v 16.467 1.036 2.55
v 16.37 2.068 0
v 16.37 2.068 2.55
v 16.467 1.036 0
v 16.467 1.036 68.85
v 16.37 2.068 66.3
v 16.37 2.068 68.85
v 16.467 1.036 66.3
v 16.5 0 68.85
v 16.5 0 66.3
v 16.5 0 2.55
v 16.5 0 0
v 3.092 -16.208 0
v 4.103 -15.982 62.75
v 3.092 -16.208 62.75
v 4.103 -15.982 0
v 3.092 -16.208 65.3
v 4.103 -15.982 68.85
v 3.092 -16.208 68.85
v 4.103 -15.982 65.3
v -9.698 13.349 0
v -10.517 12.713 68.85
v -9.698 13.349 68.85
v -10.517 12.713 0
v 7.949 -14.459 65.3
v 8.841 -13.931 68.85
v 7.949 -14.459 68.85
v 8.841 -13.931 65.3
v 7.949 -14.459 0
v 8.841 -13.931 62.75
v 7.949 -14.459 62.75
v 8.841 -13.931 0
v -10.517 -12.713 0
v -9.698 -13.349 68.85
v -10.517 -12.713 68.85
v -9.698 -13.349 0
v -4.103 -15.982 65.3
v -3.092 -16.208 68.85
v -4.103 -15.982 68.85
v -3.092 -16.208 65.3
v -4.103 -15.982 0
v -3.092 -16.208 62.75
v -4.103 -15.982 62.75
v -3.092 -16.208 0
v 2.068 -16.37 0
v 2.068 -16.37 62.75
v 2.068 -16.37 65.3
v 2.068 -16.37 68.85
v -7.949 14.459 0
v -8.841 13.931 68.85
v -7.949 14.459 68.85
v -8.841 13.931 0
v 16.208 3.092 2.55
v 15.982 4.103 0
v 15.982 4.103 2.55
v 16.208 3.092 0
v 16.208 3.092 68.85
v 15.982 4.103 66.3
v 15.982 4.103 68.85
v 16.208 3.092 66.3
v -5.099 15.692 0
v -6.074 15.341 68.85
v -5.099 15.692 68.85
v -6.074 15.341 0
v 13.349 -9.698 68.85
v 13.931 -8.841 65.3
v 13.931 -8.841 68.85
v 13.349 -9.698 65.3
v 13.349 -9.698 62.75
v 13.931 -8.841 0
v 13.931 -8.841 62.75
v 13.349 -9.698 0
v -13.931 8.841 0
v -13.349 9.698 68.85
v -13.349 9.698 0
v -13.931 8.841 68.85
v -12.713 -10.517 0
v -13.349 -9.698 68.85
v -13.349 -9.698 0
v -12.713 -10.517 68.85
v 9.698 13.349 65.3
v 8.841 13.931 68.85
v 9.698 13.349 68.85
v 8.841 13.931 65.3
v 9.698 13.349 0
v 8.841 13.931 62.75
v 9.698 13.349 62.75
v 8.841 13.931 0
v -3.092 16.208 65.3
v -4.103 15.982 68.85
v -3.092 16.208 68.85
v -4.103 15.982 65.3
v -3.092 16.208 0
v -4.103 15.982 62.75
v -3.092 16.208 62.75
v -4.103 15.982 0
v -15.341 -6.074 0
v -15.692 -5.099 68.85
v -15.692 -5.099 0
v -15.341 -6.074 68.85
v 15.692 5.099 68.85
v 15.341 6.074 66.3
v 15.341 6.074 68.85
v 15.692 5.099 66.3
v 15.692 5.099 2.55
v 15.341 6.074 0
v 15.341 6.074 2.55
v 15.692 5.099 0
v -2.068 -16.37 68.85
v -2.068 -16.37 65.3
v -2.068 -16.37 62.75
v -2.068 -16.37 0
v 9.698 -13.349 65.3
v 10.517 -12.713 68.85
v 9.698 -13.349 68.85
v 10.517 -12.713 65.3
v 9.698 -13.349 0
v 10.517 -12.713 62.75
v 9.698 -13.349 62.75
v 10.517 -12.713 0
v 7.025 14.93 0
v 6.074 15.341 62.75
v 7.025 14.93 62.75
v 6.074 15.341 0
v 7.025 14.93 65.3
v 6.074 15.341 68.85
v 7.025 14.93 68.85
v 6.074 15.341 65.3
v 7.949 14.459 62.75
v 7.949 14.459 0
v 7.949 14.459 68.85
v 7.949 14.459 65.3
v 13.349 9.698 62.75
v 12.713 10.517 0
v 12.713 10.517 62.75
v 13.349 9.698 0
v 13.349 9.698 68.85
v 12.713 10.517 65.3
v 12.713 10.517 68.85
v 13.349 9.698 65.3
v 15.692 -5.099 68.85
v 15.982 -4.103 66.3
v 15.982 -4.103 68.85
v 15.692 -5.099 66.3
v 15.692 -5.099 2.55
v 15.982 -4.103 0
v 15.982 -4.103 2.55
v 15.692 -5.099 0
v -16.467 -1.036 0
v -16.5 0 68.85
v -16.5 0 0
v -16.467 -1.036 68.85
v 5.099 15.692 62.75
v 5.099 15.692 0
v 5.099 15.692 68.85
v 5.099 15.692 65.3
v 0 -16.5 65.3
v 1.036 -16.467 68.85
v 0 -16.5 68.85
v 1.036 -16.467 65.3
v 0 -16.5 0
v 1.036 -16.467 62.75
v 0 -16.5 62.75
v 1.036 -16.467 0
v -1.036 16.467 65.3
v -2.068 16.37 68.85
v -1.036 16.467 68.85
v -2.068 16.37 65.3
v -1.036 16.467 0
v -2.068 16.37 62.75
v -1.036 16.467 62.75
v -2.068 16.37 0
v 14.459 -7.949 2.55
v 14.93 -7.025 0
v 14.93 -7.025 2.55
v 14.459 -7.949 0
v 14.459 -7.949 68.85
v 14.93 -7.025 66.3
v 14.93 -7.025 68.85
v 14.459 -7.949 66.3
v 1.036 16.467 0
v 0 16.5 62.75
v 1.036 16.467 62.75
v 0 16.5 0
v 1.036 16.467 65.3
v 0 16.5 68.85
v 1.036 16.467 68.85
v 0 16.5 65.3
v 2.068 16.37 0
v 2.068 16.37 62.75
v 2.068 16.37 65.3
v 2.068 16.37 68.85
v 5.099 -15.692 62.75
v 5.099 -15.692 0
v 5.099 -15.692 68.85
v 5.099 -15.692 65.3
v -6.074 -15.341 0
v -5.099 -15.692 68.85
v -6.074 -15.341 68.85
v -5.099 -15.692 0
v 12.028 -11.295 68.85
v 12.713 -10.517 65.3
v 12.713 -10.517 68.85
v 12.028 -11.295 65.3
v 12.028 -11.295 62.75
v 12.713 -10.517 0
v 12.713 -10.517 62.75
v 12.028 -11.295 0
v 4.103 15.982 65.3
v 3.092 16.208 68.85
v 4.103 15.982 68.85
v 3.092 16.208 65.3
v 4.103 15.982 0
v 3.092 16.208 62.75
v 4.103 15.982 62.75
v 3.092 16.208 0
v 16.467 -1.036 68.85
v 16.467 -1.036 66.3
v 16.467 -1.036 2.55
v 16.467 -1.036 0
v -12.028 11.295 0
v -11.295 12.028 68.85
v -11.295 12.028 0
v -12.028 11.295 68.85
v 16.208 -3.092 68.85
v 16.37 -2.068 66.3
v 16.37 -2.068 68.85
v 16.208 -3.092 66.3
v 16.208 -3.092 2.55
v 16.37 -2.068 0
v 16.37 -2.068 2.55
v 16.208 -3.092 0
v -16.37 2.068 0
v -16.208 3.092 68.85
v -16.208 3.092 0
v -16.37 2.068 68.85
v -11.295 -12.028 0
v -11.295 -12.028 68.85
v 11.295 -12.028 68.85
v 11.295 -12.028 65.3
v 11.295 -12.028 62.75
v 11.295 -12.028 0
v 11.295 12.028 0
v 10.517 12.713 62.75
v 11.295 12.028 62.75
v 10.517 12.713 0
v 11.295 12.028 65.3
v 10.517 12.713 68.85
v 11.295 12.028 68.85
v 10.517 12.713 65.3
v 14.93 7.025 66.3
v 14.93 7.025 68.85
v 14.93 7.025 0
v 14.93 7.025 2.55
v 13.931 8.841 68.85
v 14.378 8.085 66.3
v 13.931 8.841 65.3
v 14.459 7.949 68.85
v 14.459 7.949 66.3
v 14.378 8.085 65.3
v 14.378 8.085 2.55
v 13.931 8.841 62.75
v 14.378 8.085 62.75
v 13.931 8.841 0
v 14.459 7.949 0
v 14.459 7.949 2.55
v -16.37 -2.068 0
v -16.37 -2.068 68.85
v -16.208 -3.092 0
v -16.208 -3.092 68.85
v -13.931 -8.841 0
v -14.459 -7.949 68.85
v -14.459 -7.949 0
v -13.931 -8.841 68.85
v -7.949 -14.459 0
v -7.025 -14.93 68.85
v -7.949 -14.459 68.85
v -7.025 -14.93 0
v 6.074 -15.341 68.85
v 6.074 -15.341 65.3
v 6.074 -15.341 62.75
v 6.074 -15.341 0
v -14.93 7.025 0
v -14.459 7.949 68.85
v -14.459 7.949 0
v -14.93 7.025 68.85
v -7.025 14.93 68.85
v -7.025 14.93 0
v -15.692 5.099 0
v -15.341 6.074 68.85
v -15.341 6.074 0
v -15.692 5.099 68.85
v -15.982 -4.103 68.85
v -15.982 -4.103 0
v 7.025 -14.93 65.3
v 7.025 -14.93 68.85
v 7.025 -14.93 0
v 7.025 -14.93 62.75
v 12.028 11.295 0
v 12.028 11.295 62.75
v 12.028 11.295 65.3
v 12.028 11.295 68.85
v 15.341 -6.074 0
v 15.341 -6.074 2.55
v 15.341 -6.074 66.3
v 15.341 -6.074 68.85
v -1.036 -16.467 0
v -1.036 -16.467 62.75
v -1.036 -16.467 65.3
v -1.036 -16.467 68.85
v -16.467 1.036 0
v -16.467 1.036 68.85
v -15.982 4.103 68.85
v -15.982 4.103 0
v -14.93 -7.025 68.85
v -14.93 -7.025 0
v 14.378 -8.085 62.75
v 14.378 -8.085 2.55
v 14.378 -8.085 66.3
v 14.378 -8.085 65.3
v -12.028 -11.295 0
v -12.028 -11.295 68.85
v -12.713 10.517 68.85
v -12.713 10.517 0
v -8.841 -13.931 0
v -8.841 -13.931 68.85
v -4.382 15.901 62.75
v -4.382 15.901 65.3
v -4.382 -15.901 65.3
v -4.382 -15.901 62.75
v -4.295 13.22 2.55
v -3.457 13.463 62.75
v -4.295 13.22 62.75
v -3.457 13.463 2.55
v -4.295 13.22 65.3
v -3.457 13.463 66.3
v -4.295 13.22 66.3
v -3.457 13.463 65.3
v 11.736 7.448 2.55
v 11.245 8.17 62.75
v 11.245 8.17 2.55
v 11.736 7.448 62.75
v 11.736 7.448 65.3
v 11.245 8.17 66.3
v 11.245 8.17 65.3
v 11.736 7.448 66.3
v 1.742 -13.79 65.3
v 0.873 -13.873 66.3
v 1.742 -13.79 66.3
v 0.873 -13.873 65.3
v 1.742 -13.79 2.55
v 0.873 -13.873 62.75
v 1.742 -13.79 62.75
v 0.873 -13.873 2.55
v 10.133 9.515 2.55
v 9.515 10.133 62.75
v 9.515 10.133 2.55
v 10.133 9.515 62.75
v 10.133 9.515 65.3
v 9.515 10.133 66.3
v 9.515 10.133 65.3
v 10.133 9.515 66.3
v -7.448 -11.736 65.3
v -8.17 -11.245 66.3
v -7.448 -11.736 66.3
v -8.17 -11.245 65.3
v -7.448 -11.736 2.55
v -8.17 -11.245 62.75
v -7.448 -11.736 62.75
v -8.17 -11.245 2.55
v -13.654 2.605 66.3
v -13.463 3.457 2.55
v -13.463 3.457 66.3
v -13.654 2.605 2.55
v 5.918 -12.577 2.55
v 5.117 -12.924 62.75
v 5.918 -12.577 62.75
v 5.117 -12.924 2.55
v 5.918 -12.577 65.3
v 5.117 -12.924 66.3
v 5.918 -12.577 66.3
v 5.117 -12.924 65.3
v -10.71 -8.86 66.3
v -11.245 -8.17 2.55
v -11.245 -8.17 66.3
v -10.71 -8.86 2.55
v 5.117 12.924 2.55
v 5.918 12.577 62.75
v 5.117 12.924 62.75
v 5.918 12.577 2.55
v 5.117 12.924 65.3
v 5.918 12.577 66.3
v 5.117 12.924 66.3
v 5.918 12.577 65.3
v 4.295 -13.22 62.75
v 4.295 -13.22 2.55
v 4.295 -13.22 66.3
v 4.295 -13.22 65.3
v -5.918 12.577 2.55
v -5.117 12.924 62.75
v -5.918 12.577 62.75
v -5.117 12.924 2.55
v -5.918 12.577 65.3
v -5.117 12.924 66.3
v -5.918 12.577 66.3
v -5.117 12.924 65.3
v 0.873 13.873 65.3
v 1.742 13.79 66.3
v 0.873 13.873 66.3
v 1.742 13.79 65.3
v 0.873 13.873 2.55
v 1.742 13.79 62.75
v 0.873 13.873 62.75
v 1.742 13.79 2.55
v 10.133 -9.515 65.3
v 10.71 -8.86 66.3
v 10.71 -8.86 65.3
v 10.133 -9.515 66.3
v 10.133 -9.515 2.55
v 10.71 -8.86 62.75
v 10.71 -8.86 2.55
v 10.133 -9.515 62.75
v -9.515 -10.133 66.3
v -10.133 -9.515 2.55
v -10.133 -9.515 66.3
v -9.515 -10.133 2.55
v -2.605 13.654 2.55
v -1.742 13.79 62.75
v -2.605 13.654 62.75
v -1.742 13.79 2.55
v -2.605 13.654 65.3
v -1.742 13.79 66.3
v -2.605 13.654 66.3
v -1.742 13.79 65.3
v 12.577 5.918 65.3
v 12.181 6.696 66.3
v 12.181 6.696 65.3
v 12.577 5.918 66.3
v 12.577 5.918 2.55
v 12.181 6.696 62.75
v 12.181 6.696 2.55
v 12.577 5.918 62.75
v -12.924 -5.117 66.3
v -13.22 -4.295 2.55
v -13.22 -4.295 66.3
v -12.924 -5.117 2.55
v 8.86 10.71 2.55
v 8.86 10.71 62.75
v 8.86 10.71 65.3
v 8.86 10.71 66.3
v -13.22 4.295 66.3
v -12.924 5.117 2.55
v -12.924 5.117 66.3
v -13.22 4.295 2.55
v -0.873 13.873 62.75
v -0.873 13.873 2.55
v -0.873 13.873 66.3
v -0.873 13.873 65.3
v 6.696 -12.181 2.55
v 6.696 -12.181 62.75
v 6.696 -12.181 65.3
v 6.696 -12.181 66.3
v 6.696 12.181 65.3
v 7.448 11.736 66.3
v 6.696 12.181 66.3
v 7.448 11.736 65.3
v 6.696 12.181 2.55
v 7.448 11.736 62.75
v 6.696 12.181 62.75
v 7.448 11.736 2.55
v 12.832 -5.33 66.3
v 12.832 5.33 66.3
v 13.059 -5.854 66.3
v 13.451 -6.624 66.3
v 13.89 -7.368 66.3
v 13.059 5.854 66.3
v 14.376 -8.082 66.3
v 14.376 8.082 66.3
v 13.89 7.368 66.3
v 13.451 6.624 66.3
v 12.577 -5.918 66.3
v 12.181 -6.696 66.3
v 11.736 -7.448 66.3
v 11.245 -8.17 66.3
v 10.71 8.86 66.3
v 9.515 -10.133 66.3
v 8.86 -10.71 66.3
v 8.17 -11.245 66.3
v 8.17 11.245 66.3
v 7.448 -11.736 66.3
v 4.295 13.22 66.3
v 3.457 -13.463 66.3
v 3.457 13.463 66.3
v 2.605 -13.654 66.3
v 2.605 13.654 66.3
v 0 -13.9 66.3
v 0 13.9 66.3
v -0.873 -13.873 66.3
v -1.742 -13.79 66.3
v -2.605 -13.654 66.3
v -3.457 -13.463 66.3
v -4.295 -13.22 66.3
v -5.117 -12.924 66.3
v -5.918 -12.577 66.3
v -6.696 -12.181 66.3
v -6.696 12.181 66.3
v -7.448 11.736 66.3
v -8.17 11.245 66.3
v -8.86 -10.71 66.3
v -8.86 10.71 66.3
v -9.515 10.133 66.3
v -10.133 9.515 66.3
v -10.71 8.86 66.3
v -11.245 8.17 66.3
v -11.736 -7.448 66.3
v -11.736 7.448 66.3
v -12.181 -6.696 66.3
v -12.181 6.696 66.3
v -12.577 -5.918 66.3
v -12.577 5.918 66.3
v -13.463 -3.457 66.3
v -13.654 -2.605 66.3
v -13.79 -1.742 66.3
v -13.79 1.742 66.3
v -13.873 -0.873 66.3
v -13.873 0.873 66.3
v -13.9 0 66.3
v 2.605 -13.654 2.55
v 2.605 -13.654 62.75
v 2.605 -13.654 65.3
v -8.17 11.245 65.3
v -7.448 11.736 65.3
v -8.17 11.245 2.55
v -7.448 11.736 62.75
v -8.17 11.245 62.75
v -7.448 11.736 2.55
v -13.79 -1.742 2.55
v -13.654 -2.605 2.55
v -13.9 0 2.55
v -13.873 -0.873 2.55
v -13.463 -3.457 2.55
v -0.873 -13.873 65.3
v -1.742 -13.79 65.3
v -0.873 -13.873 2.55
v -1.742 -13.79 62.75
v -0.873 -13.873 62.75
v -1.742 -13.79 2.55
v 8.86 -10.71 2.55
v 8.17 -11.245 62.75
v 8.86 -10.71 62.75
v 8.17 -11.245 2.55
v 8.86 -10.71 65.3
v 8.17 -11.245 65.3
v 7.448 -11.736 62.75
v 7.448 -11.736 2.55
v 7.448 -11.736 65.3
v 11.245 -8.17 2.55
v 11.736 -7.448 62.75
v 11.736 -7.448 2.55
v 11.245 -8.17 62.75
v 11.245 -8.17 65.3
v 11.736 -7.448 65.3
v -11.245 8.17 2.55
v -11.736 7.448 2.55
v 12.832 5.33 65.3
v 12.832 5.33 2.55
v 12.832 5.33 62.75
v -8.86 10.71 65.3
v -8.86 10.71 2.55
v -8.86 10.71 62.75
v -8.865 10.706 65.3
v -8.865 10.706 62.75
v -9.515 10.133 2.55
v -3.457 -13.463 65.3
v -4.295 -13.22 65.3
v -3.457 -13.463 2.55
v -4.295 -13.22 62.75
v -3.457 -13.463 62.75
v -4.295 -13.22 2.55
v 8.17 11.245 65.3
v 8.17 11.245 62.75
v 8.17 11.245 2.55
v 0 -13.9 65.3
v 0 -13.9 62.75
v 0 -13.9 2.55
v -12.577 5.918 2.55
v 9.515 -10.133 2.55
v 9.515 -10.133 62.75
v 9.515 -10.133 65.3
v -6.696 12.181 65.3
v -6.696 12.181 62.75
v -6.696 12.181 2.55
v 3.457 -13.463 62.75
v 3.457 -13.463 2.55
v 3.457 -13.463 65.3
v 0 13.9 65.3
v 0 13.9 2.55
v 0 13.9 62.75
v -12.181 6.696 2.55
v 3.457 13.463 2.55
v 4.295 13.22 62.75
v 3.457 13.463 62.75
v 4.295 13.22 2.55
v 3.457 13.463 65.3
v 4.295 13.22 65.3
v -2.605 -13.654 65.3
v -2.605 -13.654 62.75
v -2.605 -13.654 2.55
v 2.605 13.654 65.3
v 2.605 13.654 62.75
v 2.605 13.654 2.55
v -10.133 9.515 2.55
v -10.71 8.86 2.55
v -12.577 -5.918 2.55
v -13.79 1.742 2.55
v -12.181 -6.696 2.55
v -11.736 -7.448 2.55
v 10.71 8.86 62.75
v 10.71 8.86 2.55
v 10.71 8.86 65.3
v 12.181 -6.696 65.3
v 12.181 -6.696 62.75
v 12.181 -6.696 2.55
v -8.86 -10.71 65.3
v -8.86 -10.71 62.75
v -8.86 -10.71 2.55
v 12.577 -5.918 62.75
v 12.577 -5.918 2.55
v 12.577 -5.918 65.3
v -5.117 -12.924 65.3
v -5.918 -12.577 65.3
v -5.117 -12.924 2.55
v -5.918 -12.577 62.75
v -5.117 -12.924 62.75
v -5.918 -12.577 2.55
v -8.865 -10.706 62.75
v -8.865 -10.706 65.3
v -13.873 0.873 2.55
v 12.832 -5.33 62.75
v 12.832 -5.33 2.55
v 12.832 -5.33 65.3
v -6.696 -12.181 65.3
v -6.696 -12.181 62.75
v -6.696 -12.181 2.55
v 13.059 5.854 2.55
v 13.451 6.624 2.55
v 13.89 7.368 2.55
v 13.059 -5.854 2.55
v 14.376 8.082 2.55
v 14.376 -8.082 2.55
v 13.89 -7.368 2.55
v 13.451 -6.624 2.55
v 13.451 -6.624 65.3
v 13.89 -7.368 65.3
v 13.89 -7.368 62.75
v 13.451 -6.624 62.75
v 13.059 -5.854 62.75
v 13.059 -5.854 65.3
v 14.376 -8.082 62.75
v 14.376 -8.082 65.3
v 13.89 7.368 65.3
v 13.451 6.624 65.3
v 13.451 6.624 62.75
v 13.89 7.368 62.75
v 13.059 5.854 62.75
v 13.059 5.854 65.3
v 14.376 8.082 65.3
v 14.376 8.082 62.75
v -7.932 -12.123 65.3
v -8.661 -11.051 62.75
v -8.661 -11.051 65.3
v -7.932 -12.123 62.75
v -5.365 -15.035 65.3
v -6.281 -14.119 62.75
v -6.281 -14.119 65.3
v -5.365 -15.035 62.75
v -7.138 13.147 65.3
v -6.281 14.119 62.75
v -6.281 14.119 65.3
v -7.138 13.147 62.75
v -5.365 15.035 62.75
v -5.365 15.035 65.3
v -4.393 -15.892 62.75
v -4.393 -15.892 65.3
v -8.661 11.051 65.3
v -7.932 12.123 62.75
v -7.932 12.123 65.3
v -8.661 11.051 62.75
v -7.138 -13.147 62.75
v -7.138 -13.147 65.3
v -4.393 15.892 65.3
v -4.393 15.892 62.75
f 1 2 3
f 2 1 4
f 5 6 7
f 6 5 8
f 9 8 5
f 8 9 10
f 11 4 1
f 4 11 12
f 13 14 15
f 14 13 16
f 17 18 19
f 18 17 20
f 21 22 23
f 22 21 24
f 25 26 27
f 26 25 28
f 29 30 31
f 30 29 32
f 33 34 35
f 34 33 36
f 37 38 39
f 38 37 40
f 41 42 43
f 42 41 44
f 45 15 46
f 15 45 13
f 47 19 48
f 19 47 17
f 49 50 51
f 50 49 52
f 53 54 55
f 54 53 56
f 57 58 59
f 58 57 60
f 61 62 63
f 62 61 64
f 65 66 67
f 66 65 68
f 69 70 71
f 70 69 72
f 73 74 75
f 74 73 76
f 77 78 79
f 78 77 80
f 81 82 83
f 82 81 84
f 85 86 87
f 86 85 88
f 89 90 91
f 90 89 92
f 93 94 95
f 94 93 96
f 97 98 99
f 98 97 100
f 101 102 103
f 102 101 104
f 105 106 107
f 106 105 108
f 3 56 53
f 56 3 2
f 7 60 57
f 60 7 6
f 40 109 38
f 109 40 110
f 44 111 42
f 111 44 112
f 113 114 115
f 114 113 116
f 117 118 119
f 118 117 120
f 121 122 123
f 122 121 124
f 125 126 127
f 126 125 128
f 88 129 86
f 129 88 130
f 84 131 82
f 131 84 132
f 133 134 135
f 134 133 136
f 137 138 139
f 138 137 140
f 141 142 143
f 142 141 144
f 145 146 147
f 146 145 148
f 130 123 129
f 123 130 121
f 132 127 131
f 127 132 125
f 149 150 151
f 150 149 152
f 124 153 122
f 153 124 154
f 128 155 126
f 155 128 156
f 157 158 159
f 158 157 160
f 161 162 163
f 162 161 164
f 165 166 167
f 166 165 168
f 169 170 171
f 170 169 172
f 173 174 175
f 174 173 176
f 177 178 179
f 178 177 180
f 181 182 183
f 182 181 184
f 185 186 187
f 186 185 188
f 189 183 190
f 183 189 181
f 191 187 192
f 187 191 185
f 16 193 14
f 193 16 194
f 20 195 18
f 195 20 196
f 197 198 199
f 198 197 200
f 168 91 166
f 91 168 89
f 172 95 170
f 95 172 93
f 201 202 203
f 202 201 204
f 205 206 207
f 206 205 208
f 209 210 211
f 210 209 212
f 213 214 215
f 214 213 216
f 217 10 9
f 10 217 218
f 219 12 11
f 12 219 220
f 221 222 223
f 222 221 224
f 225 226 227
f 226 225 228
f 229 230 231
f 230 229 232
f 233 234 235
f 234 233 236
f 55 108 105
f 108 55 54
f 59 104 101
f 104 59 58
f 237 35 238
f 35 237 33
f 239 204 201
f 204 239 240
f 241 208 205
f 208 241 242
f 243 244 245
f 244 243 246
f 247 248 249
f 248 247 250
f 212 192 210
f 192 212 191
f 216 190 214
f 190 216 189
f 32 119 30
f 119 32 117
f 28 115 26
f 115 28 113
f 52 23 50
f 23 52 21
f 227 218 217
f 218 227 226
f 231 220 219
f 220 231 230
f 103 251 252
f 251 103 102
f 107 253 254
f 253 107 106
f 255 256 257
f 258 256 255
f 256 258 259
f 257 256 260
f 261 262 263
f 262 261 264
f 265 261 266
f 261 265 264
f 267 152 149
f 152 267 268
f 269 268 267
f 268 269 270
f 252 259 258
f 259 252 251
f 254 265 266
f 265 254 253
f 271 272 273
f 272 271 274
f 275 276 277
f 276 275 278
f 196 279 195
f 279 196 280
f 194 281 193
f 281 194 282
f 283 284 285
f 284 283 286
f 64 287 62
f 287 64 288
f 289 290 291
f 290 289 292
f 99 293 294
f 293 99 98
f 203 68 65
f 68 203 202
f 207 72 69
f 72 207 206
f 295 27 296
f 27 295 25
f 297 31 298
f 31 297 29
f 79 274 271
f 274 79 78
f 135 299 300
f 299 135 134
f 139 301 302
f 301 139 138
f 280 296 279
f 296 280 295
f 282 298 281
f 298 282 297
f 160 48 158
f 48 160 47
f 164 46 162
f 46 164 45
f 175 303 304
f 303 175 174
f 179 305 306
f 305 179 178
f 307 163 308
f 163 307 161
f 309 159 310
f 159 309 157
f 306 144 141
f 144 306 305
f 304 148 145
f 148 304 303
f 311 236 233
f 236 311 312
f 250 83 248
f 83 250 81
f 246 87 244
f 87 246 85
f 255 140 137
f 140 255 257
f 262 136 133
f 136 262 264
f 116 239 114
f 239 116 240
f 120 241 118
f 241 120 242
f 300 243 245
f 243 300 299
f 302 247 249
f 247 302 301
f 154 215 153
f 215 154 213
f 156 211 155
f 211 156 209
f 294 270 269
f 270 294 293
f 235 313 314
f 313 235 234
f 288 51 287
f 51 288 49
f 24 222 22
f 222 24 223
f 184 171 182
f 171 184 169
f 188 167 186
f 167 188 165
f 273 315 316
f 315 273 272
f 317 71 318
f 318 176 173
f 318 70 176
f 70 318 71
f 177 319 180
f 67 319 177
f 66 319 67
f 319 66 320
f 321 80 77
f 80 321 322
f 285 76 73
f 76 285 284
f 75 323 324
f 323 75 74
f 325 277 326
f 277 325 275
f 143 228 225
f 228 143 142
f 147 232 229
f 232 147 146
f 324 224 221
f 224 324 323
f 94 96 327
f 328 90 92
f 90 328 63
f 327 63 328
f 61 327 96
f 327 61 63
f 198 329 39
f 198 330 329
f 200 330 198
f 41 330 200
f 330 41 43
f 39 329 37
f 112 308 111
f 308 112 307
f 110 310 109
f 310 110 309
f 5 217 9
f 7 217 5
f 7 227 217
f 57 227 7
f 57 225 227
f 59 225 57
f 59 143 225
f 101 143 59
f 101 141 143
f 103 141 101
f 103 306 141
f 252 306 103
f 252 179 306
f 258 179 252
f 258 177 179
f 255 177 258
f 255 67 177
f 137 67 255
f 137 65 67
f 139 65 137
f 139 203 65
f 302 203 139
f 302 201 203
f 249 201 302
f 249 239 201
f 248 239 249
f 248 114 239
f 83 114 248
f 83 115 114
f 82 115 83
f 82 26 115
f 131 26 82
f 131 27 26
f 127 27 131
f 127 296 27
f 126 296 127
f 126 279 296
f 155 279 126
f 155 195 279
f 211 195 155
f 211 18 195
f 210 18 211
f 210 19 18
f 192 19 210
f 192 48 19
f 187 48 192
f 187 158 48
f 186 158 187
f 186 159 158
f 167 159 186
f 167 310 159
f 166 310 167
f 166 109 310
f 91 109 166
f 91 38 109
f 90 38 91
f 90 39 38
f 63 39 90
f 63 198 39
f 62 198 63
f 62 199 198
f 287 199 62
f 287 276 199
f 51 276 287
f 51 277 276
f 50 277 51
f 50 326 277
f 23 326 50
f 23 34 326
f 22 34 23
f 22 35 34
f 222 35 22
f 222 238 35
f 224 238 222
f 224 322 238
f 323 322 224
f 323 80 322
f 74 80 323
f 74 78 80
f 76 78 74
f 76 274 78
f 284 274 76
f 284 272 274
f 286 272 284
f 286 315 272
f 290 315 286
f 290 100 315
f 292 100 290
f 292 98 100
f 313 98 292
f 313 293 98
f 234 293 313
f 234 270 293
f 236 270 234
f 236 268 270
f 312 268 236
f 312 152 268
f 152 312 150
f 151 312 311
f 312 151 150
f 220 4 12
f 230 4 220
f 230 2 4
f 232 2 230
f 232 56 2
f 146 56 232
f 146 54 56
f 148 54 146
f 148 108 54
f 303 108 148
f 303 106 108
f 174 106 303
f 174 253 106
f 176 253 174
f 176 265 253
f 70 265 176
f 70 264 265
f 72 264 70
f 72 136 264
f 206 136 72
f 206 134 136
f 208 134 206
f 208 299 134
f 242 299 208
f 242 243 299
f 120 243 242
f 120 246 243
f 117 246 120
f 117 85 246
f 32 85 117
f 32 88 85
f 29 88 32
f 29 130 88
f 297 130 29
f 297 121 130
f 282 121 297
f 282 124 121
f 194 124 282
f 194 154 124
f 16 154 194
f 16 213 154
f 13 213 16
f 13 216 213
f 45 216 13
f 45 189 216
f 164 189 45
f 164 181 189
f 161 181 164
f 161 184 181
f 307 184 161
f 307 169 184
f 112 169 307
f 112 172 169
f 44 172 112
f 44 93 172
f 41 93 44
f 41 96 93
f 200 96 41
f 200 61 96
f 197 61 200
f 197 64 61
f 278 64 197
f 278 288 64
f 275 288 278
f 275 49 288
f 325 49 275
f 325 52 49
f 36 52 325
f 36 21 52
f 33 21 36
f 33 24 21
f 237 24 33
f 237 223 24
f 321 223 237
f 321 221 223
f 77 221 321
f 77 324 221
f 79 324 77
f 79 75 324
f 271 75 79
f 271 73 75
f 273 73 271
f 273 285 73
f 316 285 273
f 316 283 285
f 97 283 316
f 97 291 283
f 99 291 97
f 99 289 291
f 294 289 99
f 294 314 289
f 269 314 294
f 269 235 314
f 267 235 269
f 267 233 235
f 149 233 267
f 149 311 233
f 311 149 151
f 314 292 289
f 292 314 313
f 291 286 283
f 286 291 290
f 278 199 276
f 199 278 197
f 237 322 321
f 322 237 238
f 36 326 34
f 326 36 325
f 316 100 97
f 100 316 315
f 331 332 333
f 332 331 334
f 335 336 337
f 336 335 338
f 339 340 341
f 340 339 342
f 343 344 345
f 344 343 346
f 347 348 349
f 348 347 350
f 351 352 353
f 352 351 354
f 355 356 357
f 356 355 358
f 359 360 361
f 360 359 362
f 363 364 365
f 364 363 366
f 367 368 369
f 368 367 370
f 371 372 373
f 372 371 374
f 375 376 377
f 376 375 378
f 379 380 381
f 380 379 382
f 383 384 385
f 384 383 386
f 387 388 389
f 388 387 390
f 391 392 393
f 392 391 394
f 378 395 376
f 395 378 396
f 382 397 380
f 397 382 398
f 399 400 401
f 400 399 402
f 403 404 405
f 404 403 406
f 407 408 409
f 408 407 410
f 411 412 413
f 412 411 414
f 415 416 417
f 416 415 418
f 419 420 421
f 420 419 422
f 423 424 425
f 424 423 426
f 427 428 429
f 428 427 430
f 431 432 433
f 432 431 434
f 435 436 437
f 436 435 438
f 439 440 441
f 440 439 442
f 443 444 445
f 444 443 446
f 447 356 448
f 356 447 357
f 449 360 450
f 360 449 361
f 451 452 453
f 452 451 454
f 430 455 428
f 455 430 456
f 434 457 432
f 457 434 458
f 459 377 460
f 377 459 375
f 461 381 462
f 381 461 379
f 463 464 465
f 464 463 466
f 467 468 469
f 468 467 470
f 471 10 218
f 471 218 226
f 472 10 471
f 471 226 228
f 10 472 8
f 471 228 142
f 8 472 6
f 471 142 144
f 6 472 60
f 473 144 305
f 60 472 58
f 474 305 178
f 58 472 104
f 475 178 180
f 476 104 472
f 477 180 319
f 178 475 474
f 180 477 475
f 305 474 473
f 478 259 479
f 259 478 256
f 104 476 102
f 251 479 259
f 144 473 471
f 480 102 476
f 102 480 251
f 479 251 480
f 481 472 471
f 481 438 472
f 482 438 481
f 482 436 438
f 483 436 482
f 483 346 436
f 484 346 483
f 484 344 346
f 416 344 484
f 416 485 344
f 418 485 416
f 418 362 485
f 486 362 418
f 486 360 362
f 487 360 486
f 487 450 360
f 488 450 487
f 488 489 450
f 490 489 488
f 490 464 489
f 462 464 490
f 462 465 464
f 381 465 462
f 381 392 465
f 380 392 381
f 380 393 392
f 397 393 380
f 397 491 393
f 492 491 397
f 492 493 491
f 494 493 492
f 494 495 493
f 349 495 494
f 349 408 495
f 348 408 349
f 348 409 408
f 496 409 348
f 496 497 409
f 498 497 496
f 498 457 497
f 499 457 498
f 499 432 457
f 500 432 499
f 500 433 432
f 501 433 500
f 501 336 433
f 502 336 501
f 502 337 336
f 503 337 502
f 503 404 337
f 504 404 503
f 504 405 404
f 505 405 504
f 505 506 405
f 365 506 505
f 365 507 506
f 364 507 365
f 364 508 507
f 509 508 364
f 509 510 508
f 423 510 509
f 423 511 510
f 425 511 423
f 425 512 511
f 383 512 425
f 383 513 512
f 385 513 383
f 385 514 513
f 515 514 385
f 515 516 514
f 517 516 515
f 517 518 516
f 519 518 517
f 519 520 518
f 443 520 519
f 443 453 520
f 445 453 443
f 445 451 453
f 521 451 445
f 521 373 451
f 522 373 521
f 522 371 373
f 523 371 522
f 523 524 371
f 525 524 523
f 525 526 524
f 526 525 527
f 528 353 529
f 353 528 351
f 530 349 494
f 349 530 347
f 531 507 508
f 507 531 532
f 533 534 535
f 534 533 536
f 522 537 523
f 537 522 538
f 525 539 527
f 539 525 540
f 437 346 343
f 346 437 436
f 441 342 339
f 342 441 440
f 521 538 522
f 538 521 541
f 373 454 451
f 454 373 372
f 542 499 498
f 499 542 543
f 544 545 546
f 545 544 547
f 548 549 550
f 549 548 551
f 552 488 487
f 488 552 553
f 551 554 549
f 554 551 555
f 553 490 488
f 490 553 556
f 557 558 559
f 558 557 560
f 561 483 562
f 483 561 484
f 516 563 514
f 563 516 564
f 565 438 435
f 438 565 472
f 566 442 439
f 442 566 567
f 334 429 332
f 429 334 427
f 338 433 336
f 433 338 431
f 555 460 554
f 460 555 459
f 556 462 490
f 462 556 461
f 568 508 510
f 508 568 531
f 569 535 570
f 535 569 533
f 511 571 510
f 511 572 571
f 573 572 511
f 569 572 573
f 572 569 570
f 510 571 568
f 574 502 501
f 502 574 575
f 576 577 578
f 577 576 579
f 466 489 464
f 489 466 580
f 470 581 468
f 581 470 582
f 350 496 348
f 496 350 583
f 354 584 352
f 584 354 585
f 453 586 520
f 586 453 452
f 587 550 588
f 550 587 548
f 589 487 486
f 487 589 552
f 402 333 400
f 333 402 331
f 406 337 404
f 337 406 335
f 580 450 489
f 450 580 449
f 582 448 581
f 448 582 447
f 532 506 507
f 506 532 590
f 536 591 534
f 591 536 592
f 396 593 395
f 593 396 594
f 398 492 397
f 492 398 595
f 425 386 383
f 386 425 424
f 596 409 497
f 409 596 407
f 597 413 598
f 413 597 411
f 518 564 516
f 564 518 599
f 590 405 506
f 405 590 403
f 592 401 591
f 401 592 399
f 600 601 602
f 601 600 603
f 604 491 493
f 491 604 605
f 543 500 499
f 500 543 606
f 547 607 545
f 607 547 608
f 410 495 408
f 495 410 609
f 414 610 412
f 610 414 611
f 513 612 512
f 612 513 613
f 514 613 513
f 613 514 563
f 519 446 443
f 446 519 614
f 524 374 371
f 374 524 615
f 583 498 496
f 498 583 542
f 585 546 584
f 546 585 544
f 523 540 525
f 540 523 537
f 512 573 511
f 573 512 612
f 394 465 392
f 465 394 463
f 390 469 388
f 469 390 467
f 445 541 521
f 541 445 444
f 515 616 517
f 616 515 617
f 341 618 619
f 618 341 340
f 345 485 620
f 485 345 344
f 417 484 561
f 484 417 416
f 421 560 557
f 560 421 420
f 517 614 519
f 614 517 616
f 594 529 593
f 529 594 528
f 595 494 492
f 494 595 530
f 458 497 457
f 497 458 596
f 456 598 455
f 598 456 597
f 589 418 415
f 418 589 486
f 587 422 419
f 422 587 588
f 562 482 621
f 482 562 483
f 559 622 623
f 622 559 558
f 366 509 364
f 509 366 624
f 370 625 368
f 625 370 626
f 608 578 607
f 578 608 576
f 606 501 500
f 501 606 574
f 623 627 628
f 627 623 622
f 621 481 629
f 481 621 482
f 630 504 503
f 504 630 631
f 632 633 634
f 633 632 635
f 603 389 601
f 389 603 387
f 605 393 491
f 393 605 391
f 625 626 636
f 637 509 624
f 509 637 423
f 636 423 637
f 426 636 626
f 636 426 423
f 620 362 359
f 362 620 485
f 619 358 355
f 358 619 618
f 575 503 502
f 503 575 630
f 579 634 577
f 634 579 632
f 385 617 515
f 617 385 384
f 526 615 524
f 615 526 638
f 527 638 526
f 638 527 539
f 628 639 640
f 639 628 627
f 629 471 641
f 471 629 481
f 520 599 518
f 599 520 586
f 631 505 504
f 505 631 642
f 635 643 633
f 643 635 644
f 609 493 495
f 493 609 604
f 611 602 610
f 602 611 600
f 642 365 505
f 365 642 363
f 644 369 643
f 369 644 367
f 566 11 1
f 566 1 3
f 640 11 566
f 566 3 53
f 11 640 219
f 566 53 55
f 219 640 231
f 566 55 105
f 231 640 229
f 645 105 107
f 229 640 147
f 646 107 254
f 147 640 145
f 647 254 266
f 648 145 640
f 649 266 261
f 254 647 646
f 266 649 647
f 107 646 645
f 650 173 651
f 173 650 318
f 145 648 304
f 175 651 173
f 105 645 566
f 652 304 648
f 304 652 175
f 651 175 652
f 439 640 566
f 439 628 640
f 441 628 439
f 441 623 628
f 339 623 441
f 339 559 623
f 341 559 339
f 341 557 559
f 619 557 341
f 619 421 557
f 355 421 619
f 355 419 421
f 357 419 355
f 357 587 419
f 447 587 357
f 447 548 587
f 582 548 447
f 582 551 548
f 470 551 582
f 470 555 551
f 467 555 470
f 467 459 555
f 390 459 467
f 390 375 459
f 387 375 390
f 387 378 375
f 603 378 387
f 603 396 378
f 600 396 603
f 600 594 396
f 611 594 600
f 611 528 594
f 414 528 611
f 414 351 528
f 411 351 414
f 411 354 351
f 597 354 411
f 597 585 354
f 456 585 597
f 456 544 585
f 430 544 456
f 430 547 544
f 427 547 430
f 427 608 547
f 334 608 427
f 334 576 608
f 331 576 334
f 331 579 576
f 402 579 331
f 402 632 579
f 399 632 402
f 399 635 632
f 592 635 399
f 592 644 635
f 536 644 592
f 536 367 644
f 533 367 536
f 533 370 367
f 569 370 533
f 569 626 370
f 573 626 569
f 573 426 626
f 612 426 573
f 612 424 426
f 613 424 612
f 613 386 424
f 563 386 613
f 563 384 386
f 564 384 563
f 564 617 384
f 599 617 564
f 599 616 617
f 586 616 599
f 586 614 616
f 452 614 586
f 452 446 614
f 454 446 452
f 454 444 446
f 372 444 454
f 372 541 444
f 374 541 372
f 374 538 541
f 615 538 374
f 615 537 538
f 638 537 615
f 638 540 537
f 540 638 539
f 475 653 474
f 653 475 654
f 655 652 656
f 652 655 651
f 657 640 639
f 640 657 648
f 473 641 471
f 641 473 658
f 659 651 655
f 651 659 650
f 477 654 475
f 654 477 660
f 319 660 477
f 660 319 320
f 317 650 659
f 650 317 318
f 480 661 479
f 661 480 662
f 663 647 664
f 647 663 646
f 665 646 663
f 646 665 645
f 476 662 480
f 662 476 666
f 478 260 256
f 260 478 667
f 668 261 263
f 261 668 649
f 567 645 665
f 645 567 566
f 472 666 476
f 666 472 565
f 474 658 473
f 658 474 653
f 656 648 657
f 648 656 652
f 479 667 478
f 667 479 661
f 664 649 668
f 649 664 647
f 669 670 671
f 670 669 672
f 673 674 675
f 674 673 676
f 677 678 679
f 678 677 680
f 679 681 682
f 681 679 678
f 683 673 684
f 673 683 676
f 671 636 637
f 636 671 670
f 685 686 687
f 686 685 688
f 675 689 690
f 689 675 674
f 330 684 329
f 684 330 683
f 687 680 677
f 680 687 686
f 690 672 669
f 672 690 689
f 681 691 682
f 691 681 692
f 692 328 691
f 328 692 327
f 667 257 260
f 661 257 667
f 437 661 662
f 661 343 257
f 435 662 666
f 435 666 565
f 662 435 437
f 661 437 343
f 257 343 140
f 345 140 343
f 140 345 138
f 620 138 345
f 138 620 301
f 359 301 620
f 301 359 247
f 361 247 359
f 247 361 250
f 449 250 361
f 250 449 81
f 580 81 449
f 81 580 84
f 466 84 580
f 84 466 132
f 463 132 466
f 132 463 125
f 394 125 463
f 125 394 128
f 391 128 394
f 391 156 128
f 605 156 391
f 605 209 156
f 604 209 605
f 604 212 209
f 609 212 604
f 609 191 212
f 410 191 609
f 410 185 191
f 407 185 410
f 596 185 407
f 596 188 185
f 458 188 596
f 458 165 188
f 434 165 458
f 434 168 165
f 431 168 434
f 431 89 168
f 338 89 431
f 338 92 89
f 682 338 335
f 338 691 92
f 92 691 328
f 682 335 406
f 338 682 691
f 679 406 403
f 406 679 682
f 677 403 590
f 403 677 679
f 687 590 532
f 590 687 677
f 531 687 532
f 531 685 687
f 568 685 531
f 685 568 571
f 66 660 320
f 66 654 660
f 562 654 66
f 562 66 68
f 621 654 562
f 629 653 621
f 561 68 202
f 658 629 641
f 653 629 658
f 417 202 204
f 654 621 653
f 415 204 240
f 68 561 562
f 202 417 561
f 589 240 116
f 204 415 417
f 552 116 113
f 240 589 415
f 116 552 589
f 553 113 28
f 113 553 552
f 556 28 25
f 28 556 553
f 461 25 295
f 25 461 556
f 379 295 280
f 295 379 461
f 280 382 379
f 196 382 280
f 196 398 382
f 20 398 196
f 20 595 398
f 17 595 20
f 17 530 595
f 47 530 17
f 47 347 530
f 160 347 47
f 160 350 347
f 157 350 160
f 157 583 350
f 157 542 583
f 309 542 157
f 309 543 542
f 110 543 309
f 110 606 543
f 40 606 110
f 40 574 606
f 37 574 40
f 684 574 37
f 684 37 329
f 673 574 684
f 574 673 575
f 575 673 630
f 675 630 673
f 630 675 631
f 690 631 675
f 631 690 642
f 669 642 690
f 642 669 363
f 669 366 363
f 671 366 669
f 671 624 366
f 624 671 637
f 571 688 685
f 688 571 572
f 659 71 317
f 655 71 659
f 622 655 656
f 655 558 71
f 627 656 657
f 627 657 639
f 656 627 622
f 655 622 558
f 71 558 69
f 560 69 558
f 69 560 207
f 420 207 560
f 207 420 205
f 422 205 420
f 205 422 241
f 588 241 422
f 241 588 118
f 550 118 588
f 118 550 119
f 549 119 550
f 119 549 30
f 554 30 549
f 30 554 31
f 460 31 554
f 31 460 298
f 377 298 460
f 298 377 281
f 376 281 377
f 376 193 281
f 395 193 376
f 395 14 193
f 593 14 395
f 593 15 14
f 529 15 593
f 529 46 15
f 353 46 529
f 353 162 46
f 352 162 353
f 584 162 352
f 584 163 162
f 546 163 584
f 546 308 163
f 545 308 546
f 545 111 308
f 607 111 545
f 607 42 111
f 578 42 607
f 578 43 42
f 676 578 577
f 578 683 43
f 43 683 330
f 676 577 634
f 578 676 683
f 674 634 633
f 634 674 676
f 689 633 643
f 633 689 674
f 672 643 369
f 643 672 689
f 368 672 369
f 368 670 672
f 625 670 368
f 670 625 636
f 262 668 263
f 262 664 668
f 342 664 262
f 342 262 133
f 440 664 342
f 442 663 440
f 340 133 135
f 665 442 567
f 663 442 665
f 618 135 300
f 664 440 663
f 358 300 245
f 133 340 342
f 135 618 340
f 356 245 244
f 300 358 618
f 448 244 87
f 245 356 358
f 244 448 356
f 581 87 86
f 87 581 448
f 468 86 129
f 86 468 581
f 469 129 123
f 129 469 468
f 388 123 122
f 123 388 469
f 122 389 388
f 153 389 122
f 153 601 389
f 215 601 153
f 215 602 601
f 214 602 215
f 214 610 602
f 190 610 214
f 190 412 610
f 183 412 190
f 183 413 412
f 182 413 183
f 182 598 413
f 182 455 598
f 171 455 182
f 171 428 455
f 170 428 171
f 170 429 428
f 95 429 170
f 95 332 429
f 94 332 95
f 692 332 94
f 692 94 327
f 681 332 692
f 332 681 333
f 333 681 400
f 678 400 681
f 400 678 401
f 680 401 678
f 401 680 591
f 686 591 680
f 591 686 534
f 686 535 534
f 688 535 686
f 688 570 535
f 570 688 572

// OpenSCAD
// Module representing a coin. All dimensions are specified in milimeters.

$fn=100;

module Coin(diameter=27.5, thickness=2.55) {
    cylinder(h=thickness, r=diameter/2);
}

// Capacity specified in amount of coins.
module CoinStack(capacity=25, diameter=27.5, thickness=2.55) {
    scale([1,1,capacity])
        color("Honeydew") Coin(diameter);
}

module Coiner(capacity=25, diameter=27.5, thickness=2.55) {
    difference() {
            scale([1.2, 1.2, 1]) CoinStack(capacity+2, diameter, thickness);
            // Add 0.15 mm shift to the radius of a coin for space access.
            translate([0, 0, thickness]) CoinStack(capacity, diameter+0.3, thickness);
            translate([diameter-2, 0, thickness]) CoinStack(capacity, diameter, thickness);
            translate([diameter/PI,0,thickness*capacity-1]) scale([1.5, 1.5, 1]) Coin(diameter, thickness);
        }
}

capacity = 25;
diameter = 27.5;
thickness = 2.55;
rotate(0,-90,00) Coiner(capacity, diameter, thickness);
// translate([diameter*1.2, 0, 0]) Coin(diameter, thickness);
